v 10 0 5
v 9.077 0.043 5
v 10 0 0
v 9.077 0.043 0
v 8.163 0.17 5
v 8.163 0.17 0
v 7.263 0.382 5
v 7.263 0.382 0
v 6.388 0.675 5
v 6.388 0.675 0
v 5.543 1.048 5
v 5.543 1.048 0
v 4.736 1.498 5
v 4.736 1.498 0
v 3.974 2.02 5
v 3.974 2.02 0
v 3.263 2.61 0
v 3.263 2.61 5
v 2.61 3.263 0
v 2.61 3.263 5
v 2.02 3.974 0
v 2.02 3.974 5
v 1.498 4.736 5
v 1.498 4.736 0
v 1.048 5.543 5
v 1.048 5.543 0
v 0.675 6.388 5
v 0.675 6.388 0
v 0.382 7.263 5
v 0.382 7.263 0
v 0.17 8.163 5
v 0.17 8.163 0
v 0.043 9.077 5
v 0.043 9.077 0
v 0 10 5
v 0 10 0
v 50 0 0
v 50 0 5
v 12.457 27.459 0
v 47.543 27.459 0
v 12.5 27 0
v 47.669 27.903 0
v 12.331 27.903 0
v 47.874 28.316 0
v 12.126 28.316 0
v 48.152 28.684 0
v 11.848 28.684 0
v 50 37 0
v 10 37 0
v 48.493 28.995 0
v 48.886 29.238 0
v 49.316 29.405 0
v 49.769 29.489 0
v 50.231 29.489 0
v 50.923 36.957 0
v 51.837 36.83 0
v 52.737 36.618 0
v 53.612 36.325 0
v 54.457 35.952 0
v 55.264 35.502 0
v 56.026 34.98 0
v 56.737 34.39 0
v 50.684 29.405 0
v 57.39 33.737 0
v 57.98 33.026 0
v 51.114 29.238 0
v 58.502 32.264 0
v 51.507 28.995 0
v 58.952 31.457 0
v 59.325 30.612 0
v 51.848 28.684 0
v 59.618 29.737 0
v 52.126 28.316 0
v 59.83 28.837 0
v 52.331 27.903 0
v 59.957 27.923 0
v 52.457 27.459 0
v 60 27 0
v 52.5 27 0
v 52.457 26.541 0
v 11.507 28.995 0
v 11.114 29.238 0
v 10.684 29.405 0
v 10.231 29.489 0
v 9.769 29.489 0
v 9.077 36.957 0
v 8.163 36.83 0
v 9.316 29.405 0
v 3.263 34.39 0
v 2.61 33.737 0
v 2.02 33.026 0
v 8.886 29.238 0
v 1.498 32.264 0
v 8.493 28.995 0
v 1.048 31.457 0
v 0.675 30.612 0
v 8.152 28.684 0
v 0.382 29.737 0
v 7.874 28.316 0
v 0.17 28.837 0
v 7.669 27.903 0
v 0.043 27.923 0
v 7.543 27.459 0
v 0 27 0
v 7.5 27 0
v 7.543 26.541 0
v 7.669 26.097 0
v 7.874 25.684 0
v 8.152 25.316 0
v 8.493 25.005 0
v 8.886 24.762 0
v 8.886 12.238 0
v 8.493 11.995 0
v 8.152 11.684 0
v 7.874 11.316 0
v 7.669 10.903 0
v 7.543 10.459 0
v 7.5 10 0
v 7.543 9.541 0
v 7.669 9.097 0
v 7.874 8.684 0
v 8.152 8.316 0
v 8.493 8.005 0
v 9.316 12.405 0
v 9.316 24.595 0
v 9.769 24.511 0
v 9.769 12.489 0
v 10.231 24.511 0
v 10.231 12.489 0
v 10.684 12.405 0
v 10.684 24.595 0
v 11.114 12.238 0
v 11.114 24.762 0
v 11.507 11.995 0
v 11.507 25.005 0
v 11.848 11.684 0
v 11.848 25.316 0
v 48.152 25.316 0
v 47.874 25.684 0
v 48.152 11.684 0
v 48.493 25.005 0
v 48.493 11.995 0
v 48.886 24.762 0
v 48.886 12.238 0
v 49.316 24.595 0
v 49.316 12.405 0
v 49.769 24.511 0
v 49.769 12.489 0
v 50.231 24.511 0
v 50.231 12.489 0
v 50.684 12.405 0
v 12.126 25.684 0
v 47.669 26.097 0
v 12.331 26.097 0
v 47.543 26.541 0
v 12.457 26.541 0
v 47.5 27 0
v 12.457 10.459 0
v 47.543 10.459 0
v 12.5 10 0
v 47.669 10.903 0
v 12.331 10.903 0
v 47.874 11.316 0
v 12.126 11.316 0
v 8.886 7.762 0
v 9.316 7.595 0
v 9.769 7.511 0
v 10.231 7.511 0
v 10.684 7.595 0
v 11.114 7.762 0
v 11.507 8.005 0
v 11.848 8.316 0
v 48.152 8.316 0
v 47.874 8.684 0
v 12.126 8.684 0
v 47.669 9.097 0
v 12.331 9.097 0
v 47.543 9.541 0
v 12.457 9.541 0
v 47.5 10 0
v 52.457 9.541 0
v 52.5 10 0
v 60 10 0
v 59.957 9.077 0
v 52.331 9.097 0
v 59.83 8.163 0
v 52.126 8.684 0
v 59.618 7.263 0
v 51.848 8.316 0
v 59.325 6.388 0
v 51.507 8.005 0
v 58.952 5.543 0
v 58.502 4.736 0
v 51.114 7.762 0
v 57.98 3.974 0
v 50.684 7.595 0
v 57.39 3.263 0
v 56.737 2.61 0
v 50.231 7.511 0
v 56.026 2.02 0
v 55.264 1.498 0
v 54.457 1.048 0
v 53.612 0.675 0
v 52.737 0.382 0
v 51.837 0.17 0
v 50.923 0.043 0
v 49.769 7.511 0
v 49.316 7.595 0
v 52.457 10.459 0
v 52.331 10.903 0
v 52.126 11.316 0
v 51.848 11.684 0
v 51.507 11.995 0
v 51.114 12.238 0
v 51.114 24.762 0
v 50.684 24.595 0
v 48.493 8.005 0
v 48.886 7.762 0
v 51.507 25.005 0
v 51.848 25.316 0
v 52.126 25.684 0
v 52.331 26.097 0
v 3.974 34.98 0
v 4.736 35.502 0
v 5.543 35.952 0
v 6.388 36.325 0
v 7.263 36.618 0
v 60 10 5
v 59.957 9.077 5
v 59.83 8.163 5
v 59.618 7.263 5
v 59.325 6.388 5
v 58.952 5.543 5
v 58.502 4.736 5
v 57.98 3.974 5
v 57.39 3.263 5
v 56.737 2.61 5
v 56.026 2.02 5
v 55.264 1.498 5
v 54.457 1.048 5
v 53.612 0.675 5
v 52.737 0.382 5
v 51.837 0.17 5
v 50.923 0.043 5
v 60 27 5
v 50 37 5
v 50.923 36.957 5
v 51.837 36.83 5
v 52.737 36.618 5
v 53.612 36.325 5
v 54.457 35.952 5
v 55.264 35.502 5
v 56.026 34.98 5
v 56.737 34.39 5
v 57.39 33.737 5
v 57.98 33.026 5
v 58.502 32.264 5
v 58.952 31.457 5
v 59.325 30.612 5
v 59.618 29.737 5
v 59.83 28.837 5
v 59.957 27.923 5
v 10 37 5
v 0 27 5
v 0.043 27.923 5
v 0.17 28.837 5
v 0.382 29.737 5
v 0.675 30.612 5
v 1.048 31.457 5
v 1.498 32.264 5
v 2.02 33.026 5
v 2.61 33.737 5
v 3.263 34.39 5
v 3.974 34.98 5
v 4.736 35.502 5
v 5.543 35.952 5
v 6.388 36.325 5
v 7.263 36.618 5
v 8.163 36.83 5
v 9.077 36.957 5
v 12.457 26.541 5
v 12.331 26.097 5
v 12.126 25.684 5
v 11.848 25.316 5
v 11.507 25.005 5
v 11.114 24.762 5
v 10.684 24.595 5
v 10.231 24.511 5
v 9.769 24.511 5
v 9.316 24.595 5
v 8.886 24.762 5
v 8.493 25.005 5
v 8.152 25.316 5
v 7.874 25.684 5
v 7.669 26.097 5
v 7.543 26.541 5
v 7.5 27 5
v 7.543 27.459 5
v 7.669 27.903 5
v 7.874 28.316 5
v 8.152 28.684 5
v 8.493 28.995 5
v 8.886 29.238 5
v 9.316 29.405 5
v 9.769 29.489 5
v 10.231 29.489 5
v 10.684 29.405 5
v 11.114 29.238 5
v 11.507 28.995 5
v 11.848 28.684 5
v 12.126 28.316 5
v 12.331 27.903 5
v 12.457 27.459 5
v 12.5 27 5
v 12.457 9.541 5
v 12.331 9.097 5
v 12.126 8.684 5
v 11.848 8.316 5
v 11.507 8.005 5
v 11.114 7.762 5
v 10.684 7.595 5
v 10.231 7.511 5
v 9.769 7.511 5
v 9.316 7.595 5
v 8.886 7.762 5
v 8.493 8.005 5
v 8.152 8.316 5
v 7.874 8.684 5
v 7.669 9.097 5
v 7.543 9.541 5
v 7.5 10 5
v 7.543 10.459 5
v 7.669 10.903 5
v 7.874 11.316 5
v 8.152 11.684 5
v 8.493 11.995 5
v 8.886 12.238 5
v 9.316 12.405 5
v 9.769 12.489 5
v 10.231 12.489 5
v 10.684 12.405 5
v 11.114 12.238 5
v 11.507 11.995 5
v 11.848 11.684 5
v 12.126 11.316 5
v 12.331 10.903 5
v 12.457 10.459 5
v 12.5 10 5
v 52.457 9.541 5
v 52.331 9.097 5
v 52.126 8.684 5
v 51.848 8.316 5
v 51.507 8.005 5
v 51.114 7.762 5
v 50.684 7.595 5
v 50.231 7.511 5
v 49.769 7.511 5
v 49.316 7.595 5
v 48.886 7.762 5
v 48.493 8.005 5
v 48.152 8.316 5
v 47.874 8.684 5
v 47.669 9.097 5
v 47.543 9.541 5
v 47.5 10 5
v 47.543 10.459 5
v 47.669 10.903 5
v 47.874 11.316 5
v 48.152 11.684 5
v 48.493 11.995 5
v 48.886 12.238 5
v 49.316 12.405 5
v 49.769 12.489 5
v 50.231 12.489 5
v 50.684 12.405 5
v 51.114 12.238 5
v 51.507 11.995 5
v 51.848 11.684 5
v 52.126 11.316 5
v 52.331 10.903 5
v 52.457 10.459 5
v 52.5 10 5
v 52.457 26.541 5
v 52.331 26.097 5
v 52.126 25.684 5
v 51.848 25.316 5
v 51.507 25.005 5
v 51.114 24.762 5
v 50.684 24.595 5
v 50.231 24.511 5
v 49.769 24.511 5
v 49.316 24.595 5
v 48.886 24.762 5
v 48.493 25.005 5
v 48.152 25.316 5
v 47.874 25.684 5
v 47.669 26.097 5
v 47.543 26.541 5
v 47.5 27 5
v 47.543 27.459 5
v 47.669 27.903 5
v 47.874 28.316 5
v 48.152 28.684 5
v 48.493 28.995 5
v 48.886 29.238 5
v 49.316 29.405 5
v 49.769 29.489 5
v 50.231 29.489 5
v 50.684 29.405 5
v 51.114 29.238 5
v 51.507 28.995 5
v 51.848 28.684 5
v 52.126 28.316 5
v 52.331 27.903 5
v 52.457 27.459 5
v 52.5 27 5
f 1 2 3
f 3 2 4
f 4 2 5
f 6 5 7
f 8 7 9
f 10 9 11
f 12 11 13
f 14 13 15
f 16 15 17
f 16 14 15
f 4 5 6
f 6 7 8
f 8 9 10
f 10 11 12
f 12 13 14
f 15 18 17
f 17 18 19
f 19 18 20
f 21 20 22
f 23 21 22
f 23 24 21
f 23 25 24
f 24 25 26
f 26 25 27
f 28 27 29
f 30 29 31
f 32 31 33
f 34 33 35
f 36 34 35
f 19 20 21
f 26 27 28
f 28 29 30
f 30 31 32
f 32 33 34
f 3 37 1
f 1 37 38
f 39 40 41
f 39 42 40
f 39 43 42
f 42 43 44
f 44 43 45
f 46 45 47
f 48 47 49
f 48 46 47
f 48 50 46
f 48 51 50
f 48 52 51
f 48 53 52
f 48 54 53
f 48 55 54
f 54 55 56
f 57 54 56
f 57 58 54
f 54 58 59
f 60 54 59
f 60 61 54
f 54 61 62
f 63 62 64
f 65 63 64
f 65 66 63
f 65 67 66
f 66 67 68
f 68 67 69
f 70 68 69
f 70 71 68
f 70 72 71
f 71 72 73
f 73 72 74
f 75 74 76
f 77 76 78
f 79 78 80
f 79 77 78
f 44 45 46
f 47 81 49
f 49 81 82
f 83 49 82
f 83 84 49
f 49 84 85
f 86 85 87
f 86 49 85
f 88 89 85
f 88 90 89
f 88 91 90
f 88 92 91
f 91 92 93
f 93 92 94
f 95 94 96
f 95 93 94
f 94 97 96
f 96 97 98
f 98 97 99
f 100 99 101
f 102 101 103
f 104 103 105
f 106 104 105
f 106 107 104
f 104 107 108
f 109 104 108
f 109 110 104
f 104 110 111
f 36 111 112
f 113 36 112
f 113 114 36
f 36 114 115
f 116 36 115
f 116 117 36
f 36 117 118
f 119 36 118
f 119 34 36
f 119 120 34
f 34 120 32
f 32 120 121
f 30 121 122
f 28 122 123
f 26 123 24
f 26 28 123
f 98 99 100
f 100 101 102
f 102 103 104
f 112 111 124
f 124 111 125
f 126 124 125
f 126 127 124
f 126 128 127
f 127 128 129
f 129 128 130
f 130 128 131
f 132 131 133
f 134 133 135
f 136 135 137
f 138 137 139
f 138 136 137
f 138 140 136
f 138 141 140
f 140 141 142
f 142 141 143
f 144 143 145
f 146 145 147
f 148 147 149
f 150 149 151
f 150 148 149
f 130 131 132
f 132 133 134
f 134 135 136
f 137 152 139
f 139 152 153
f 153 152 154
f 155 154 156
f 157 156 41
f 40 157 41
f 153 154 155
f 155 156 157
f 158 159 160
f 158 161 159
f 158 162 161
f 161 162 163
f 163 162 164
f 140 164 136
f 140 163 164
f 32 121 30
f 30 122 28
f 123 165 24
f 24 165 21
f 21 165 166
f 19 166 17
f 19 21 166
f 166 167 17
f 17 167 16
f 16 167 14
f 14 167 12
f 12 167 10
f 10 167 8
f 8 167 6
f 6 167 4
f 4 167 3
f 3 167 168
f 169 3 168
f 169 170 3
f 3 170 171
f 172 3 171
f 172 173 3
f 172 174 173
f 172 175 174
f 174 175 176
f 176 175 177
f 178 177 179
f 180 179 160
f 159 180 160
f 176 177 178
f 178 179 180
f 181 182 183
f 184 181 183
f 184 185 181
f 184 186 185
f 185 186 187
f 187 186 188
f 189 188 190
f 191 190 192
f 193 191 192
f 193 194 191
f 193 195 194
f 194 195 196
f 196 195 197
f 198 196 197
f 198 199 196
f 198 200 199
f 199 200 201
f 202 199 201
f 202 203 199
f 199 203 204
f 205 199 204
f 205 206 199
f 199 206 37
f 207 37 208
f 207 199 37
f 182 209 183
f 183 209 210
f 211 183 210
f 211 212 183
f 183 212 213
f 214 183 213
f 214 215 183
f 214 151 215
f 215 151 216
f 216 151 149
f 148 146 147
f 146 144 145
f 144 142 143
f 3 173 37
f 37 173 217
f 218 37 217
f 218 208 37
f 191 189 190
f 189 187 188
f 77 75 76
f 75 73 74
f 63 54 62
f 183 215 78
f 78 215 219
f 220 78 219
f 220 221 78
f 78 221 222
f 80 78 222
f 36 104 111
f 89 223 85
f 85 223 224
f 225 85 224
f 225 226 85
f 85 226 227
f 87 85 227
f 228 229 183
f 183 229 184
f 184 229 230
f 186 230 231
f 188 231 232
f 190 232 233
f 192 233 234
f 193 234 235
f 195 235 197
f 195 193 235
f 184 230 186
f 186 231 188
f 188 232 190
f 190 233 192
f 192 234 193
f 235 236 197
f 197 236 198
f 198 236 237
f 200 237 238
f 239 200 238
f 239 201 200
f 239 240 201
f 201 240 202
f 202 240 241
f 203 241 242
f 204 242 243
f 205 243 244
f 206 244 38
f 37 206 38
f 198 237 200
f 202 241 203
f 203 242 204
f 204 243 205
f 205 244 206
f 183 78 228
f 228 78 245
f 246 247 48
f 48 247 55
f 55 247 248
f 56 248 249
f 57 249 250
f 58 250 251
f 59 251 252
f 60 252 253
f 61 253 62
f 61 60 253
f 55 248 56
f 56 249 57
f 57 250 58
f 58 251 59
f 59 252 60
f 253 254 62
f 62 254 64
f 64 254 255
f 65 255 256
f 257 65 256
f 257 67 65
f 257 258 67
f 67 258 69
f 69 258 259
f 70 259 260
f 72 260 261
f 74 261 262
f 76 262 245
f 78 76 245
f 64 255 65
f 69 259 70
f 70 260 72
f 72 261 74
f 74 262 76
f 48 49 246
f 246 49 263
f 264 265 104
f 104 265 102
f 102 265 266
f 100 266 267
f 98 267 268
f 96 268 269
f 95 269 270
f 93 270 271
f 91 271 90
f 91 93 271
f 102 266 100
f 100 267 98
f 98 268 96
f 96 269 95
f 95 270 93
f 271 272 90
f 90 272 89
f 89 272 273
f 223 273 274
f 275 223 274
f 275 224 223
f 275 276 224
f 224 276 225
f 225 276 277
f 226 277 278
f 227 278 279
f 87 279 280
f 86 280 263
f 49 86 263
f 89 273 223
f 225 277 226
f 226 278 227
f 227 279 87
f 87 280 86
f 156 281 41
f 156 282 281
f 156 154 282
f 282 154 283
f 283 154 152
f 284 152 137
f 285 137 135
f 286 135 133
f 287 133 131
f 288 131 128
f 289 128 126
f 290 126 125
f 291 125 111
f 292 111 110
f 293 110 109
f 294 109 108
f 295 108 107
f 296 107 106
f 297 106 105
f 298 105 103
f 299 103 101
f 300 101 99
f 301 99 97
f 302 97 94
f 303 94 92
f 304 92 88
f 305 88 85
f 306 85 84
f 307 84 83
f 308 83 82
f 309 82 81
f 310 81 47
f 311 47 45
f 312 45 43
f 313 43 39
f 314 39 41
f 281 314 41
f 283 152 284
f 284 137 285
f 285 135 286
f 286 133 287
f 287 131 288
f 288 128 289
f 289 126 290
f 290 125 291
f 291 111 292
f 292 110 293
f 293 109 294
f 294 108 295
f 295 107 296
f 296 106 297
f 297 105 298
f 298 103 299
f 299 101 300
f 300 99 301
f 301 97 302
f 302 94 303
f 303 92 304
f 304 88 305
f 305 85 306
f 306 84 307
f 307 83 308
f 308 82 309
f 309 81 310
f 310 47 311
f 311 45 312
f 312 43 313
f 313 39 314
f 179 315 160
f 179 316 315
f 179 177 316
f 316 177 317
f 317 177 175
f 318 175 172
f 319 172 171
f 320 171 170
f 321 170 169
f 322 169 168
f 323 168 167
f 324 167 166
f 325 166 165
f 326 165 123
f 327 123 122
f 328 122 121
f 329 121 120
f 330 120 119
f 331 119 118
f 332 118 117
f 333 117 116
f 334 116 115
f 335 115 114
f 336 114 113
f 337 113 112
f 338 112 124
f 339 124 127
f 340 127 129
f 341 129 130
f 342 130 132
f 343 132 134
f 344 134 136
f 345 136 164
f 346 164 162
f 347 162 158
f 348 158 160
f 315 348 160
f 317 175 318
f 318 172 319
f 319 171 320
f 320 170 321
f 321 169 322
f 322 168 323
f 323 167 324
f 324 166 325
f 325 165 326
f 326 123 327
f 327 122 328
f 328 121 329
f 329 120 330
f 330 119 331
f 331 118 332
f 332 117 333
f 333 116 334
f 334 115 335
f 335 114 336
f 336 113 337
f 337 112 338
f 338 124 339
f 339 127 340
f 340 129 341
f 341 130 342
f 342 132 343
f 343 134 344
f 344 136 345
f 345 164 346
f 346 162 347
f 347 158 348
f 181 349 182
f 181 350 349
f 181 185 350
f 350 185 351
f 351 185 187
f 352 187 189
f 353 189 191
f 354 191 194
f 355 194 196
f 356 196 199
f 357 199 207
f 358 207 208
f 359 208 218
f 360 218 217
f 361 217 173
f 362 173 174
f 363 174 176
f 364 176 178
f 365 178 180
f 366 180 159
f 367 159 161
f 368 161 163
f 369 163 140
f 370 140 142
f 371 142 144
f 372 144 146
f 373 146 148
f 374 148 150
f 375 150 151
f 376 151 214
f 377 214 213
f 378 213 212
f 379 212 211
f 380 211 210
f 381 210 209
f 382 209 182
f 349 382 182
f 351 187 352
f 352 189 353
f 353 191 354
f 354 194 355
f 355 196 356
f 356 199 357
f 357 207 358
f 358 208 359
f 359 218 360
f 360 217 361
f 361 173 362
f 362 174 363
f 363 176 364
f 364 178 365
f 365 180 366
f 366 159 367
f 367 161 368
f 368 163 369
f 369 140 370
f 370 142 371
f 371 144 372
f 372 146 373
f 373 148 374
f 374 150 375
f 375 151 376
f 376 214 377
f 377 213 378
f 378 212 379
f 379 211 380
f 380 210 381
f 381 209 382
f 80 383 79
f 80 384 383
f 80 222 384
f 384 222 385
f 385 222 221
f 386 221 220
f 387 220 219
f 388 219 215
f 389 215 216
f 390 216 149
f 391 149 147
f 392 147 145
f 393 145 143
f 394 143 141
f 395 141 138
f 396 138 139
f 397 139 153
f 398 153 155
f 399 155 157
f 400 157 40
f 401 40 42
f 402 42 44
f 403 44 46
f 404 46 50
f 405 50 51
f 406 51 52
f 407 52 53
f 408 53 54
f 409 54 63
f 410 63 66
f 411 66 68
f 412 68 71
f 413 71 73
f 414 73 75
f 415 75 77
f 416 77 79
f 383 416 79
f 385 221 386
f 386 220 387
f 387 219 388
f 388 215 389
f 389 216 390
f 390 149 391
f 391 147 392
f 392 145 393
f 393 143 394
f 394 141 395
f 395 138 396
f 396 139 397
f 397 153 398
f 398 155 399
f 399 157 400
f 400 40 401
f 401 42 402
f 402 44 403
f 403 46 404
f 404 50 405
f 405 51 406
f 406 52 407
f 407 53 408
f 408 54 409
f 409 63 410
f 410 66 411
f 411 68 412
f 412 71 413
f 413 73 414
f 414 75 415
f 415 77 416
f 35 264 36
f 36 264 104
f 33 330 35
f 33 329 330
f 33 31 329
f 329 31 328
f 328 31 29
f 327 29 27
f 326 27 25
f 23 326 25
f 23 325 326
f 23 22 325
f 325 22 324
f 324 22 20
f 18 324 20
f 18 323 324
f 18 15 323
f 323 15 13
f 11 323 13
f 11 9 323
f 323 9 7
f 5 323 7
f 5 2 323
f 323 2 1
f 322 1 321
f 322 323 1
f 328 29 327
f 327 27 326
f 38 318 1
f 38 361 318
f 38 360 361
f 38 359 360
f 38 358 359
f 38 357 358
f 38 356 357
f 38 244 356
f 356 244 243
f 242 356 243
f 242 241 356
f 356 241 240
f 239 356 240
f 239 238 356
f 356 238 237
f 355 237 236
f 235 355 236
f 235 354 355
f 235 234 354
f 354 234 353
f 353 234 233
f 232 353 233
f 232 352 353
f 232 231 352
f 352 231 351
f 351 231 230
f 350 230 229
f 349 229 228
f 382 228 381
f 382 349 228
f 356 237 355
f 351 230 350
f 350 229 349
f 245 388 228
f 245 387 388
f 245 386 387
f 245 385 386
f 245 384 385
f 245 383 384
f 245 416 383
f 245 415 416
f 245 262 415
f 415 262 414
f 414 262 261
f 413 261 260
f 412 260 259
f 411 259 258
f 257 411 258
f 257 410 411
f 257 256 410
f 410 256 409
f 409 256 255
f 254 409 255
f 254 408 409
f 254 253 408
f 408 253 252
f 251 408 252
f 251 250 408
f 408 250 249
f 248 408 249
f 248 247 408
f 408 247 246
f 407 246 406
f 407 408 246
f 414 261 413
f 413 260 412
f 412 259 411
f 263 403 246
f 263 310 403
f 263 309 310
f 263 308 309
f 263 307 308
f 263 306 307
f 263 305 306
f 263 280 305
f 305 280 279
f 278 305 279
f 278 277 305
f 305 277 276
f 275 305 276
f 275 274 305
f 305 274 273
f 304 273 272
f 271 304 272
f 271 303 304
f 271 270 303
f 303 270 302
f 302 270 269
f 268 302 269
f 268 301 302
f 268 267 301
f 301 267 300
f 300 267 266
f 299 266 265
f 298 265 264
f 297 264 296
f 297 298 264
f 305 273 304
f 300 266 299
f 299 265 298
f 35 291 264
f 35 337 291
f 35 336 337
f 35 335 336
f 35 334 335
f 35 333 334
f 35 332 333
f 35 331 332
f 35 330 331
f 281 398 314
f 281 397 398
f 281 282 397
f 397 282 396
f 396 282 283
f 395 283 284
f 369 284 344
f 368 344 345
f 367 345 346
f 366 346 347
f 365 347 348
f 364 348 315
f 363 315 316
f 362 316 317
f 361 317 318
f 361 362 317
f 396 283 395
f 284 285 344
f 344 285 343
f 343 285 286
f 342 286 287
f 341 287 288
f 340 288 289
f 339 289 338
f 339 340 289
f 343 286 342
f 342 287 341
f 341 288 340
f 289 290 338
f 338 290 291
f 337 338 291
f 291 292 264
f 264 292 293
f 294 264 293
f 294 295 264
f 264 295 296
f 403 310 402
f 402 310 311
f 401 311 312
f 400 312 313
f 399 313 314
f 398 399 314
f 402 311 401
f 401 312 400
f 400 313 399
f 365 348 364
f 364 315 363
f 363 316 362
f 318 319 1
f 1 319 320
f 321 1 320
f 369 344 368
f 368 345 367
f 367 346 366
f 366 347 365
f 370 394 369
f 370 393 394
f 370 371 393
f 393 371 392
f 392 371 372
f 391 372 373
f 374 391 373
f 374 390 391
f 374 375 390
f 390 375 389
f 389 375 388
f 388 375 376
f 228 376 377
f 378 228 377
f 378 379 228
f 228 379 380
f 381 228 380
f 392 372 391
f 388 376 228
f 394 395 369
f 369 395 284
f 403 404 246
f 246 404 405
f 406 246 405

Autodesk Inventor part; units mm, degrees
ref_plane "YZ Plane" through (0, 0, 0) normal (1, 0, 0) x (0, 1, 0)
ref_plane "XZ Plane" through (0, 0, 0) normal (0, 1, 0) x (-1, 0, 0)
ref_plane "XY Plane" through (0, 0, 0) normal (0, 0, 1) x (1, 0, 0)
sketch "Sketch1" plane through (0, 0, 0) normal (0, 0, 1) x (1, 0, 0)
  line L0 (0, 0) -> (60, 0)
  line L1 (60, 0) -> (60, 37)
  line L2 (60, 37) -> (0, 37)
  line L3 (0, 37) -> (0, 0)
  dimension "d0" = 60
  dimension "d1" = 37
extrude "Extrusion1" add sketch "Sketch1" along normal blind 5
sketch "Sketch2" plane through (0, 0, 5) normal (0, 0, 1) x (1, 0, 0)
  circle A0 centre (10, 10) radius 2.5
  circle A1 centre (50, 10) radius 2.5
  circle A2 centre (10, 27) radius 2.5
  circle A3 centre (50, 27) radius 2.5
  point P0 (0, 0)
  dimension "d4" = 5
  dimension "d5" = 5
  dimension "d6" = 5
  dimension "d7" = 5
extrude "Extrusion2" cut sketch "Sketch2" against normal blind 5
fillet "Fillet1" radius 10 1 edges at (0, 37, 2.5)
fillet "Fillet2" radius 10 1 edges at (60, 37, 2.5)
fillet "Fillet3" radius 10 1 edges at (60, 0, 2.5)
fillet "Fillet4" radius 10 1 edges at (0, 0, 2.5)
properties part number "sail_hold_2"
